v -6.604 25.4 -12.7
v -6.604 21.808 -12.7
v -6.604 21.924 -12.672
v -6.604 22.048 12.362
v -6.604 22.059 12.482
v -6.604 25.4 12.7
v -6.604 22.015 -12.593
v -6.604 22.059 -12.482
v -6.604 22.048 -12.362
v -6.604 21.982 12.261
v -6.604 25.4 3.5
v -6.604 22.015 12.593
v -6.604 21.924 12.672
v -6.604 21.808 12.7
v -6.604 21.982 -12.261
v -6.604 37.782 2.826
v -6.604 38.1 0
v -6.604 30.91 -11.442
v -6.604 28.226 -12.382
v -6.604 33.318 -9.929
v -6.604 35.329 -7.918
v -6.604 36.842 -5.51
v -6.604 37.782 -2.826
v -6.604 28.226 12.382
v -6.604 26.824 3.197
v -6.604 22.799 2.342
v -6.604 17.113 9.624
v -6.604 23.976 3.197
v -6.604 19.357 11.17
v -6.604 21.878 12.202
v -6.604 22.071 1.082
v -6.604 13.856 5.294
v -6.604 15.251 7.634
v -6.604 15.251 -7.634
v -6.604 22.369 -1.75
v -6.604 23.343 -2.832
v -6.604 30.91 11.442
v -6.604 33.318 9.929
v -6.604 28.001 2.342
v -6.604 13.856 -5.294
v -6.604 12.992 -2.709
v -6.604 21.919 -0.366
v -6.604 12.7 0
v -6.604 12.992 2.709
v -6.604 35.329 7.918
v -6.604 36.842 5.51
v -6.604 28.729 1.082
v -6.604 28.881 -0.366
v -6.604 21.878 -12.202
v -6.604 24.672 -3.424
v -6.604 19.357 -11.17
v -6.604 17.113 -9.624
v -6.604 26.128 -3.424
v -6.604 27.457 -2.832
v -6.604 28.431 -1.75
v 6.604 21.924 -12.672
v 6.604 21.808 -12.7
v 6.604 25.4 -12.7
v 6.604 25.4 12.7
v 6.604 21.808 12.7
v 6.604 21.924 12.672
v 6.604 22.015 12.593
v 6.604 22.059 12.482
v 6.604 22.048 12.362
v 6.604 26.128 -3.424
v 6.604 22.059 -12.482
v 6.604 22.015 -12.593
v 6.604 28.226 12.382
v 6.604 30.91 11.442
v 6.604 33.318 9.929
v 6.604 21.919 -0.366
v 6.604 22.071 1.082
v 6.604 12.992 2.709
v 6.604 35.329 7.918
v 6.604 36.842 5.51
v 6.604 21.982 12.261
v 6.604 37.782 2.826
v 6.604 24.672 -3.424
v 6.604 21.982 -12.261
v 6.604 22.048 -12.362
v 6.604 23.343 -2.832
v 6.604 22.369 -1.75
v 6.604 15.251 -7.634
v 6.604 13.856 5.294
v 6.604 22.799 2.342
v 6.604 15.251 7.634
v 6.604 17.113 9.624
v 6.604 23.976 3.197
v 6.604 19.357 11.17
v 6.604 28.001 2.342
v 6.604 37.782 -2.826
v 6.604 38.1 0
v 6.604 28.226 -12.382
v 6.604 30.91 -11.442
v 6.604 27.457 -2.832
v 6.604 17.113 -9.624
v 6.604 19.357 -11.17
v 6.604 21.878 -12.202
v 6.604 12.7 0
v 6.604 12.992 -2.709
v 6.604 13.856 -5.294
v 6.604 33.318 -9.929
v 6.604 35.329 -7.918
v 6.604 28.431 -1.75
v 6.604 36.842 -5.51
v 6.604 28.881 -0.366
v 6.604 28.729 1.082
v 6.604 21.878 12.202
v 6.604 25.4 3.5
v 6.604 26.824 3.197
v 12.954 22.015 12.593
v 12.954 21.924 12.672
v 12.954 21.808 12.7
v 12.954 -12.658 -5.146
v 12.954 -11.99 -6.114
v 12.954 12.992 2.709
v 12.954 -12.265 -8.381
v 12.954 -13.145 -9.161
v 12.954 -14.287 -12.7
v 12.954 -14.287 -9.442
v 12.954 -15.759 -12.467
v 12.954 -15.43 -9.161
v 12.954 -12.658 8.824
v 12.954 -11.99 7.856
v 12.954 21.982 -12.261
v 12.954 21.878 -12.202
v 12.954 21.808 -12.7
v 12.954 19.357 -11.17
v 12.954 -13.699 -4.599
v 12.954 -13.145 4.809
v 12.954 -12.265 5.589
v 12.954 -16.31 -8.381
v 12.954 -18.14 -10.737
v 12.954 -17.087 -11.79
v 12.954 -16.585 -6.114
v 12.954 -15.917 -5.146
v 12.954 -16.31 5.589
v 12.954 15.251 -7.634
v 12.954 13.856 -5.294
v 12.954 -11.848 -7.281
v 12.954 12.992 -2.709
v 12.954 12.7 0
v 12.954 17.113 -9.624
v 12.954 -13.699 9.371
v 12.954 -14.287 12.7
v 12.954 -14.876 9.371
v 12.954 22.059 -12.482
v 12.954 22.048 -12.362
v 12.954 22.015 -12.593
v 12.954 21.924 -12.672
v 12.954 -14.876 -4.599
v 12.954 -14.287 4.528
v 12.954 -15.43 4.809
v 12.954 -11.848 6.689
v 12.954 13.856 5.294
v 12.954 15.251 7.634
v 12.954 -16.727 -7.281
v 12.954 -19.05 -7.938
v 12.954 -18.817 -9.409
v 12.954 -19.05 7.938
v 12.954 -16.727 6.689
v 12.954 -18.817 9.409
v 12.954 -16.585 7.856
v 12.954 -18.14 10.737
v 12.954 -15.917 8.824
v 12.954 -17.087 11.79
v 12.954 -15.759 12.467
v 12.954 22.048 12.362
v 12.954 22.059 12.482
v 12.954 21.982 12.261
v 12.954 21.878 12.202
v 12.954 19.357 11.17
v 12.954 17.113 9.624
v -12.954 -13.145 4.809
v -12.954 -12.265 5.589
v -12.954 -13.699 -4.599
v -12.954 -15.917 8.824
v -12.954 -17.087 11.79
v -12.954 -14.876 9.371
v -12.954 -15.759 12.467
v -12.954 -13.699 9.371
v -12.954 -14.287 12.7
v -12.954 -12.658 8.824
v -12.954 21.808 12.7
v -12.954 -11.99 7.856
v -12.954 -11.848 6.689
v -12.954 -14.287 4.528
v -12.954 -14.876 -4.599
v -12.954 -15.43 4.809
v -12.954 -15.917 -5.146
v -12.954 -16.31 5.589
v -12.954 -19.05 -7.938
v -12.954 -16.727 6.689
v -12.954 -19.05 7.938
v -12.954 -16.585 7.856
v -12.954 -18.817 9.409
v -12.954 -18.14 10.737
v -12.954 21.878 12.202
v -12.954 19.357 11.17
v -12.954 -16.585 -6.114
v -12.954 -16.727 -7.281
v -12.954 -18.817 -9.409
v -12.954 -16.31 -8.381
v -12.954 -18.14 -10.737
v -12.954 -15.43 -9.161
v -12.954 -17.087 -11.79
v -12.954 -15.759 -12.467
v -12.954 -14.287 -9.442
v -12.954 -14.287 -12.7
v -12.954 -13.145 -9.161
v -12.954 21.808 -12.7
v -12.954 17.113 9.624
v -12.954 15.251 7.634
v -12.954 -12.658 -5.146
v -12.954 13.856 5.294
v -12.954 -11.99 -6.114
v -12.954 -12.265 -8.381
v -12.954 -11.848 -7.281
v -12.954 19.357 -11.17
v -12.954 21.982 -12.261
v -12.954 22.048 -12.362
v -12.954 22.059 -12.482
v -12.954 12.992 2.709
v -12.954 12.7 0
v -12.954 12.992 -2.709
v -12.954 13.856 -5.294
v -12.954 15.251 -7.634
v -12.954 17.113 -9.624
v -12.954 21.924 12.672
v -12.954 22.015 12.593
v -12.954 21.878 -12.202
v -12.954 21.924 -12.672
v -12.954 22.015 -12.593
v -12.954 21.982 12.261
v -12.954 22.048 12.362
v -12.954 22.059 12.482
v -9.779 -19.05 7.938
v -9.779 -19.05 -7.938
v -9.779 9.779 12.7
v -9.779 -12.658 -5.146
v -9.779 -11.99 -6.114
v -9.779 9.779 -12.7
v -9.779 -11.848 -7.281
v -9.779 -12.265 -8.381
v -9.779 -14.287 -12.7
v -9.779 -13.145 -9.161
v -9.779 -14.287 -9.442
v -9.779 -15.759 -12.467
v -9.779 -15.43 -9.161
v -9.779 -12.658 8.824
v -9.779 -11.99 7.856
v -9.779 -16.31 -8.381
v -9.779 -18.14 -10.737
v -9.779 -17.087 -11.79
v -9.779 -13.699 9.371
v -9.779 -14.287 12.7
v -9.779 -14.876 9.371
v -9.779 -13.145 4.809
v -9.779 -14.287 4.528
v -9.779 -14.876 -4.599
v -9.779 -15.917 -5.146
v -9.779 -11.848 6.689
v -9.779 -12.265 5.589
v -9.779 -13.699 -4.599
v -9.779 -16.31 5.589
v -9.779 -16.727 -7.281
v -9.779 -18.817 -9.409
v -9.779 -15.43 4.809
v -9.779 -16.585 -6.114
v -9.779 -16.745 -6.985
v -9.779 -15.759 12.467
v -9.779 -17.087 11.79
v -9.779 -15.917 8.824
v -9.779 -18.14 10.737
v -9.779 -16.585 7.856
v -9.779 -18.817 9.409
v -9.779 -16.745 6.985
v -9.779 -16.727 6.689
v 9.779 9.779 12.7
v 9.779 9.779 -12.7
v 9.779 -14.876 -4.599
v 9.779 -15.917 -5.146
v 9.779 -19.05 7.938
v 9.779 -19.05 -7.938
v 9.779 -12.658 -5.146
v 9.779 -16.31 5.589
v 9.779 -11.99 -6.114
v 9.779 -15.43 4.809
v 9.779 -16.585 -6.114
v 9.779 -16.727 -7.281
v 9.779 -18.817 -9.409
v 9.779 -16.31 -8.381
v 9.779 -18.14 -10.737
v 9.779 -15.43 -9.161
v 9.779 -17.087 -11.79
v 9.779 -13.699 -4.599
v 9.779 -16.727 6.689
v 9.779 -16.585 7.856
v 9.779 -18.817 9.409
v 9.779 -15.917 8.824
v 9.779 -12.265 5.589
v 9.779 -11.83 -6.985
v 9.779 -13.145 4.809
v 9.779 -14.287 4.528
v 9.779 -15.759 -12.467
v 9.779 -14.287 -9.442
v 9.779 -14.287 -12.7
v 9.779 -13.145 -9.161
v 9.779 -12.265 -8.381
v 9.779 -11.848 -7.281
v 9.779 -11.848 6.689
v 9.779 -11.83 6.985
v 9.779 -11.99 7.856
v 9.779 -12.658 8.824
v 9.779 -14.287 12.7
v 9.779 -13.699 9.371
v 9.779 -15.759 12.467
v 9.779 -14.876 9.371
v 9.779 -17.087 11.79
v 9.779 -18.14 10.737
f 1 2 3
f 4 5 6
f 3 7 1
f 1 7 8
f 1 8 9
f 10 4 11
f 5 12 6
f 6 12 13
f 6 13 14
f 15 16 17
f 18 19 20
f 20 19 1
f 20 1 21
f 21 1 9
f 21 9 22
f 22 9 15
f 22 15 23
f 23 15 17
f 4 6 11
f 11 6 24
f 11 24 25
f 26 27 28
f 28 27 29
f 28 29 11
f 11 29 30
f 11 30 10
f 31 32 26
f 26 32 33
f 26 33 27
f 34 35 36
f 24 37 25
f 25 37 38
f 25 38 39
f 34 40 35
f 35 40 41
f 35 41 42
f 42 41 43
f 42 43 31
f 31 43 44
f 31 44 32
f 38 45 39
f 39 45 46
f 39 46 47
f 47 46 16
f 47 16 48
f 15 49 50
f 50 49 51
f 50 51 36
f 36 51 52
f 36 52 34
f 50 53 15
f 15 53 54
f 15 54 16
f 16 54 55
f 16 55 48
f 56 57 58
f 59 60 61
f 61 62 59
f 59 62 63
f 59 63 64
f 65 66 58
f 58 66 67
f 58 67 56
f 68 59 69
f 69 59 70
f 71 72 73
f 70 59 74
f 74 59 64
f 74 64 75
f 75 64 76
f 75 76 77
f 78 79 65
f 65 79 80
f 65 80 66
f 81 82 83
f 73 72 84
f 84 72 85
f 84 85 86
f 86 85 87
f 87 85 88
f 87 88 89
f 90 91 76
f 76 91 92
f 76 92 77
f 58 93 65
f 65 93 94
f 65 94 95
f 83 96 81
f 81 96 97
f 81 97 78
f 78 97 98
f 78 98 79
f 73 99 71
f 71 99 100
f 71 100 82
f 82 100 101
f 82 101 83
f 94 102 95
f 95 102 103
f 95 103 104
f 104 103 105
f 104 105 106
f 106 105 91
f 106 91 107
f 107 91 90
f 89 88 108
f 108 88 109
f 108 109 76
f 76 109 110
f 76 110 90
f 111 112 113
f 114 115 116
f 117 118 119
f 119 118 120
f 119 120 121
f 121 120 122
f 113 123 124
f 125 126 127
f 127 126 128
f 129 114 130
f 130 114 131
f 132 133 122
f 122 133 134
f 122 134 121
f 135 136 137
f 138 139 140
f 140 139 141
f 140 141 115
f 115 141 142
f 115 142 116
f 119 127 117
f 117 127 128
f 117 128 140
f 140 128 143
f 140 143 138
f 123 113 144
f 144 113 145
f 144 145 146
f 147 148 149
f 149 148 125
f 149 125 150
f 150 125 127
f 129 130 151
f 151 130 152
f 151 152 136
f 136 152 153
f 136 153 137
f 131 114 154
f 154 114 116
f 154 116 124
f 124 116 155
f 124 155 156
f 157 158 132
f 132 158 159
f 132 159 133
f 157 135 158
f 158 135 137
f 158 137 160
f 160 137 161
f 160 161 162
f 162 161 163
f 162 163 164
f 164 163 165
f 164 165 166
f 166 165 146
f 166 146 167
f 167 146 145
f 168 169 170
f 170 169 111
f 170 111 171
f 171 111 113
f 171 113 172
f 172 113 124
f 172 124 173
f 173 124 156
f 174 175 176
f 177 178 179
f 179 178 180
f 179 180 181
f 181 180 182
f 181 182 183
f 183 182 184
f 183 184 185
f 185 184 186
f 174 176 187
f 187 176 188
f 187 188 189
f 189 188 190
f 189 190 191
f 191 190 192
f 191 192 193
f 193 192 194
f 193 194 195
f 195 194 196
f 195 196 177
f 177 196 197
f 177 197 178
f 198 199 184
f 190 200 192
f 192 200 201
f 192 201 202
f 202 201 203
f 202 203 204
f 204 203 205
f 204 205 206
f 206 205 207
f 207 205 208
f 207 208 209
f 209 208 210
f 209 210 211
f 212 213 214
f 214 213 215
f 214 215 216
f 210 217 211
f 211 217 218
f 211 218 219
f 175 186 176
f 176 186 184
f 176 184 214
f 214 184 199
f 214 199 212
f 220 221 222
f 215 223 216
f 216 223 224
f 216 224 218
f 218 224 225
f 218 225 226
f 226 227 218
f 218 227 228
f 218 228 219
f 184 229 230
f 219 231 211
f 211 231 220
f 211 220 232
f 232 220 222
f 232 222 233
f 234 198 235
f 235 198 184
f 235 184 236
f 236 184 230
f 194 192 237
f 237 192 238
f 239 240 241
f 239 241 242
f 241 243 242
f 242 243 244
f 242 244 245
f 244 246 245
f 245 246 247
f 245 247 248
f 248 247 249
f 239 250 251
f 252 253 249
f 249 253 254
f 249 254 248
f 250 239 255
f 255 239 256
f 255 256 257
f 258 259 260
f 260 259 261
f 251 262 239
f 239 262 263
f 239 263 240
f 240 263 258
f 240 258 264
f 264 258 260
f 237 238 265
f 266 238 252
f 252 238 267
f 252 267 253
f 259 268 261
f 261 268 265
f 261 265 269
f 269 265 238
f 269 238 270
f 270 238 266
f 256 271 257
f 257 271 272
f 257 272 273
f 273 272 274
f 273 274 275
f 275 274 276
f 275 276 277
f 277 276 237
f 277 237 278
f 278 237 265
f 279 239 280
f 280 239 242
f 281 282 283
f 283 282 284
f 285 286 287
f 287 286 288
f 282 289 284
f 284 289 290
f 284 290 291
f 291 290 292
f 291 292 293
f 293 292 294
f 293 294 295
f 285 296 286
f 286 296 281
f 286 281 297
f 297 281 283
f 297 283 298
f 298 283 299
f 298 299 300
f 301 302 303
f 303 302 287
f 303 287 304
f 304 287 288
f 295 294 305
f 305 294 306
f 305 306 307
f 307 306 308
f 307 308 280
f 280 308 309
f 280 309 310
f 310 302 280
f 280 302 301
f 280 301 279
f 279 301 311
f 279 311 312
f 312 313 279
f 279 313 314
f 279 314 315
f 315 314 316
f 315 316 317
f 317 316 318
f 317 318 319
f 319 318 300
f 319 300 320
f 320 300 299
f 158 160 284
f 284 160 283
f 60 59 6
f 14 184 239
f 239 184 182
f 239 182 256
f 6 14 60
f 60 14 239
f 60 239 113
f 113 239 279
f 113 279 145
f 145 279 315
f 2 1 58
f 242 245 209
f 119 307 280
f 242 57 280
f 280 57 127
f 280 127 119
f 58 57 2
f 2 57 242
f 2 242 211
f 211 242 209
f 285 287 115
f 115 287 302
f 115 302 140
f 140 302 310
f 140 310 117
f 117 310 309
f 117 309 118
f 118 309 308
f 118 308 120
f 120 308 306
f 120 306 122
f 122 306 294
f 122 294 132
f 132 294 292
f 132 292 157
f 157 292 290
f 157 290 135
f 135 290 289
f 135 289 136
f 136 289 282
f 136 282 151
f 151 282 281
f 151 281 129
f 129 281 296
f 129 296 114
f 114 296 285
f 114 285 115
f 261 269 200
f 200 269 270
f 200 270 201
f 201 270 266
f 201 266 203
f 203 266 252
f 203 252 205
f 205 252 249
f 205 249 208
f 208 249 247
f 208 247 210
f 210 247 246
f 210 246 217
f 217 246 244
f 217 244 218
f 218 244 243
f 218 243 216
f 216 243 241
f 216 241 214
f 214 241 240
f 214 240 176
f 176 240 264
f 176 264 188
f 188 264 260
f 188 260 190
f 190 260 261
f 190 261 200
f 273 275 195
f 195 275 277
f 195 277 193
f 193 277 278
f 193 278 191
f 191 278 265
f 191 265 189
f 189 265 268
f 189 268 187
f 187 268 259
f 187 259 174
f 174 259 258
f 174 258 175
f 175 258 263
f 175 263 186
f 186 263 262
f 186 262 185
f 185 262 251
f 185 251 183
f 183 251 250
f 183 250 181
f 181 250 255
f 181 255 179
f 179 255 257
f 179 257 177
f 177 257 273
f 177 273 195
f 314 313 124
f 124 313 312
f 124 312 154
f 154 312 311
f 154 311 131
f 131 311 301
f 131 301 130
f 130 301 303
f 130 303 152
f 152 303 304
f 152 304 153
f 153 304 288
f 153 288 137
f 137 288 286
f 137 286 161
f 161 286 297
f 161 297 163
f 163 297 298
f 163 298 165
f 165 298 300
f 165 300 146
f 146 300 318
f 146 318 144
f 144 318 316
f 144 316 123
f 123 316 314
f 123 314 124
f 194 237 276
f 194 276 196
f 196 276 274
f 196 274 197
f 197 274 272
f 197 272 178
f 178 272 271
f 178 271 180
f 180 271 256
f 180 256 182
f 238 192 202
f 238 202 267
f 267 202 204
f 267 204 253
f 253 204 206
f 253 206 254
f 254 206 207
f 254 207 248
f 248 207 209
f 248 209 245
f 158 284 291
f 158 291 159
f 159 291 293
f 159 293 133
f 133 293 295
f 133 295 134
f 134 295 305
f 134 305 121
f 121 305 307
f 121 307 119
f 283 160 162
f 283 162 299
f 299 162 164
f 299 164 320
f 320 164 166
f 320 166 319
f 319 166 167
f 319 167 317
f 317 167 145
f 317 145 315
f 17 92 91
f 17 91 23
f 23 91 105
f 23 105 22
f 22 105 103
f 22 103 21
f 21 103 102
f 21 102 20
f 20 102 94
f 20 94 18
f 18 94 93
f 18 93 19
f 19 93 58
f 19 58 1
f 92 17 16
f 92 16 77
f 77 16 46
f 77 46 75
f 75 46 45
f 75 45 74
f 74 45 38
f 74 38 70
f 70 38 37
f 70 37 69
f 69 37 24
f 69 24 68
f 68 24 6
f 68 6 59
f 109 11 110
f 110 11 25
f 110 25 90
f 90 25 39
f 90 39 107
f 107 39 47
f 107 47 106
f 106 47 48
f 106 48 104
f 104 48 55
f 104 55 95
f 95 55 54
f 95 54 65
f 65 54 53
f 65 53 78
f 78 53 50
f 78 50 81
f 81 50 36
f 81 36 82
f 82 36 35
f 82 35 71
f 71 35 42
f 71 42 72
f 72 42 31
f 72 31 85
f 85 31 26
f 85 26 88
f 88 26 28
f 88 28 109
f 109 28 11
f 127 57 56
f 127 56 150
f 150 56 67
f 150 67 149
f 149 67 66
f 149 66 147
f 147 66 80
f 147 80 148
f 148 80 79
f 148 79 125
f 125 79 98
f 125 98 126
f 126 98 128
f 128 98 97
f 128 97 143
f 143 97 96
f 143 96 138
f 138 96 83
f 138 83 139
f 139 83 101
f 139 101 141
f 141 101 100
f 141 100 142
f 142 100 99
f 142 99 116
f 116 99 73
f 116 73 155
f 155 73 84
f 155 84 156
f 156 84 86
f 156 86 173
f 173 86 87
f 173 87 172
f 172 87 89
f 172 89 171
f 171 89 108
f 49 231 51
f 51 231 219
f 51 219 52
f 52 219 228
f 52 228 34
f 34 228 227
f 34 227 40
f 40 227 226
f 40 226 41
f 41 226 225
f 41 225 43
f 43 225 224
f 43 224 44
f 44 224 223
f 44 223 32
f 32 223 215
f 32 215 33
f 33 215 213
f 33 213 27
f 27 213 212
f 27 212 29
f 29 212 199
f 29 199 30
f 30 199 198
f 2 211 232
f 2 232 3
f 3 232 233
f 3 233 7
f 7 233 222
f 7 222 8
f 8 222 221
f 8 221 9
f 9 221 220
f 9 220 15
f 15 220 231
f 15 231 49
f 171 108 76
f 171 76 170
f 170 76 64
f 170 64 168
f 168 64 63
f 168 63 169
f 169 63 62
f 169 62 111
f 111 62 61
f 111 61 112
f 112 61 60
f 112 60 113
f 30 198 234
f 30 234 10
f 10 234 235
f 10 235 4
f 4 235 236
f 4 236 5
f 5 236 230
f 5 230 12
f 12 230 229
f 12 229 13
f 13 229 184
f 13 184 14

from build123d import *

# Parameters (mm, degrees)
BOSS_EXTRUDE4_DEPTH   = 12.7
F_8_CLEARANCE_HOLE1_D = 4.9149
FILLET2_R             = 4.7625
FILLET3_R             = 12.7
M6_CLEARANCE_HOLE2_D  = 7
BOSS_EXTRUDE5_START   = -19.558
BOSS_EXTRUDE5_DEPTH   = 25.908
CUT_EXTRUDE1_START    = -6.35
CUT_EXTRUDE1_DEPTH    = 6.35
CUT_EXTRUDE2_START    = -25.908
CUT_EXTRUDE2_DEPTH    = 6.35


with BuildPart() as part:
    # Sketch7 → Boss-Extrude4 (new, symmetric)
    with BuildSketch(Plane.XY):
        Polygon((-12.954, -19.05), (-12.954, 12.954), (-6.604, 12.954), (-6.604, 38.1), (6.604, 38.1), (6.604, 12.954), (12.954, 12.954), (12.954, -19.05), (9.779, -19.05), (9.779, 9.779), (-9.779, 9.779), (-9.779, -19.05), align=None)
    extrude(amount=BOSS_EXTRUDE4_DEPTH, both=True)

    # #8 Clearance Hole1 (through all)
    with Locations(Plane(origin=(12.954, 0, 0), x_dir=(0, 0, -1), z_dir=(1, 0, 0))):
        with Locations((-6.985, -14.2875), (6.985, -14.2875)):
            Hole(F_8_CLEARANCE_HOLE1_D / 2)

    # Fillet2
    fillet2_edges = [part.edges().sort_by_distance(p)[0] for p in [
        (11.3665, -19.05, -12.7),
        (-11.3665, -19.05, -12.7),
        (-11.3665, -19.05, 12.7),
        (11.3665, -19.05, 12.7),
    ]]
    fillet(fillet2_edges, radius=FILLET2_R)

    # Fillet3
    fillet3_edges = [part.edges().sort_by_distance(p)[0] for p in [
        (0, 38.1, 12.7),
        (0, 38.1, -12.7),
    ]]
    fillet(fillet3_edges, radius=FILLET3_R - 0.0001)  # a hair under: the kernel refuses the full size

    # M6 Clearance Hole2 (through all)
    with Locations(Plane(origin=(-6.604, 0, 0), x_dir=(0, 0, -1), z_dir=(-1, 0, 0))):
        with Locations((0, -25.4)):
            Hole(M6_CLEARANCE_HOLE2_D / 2)

    # Sketch12 → Boss-Extrude5 (add)
    with BuildSketch(Plane(origin=(6.604, 0, 0), x_dir=(0, 0, -1), z_dir=(1, 0, 0)).offset(BOSS_EXTRUDE5_START)):
        with BuildLine():
            Line((-12.7, 12.954), (-12.7, 21.807897552))
            ThreePointArc((-12.7, 21.807897552), (-12.481567114, 22.059395027), (-12.201960784, 21.878330933))
            ThreePointArc((-12.201960784, 21.878330933), (-8.610950381, 16.065037036), (-2.52726809, 12.954))
            Line((-2.52726809, 12.954), (-12.7, 12.954))
        make_face()
        with BuildLine():
            Line((12.7, 12.954), (12.7, 21.807897552))
            ThreePointArc((12.7, 21.807897552), (12.481567114, 22.059395027), (12.201960784, 21.878330933))
            ThreePointArc((12.201960784, 21.878330933), (8.610950381, 16.065037036), (2.52726809, 12.954))
            Line((2.52726809, 12.954), (12.7, 12.954))
        make_face()
    extrude(amount=BOSS_EXTRUDE5_DEPTH)

    # Sketch13 → Cut-Extrude1 (cut)
    with BuildSketch(Plane(origin=(12.954, 0, 0), x_dir=(0, 0, -1), z_dir=(1, 0, 0)).offset(CUT_EXTRUDE1_START)):
        with BuildLine():
            Line((-2.52726809, 12.954), (2.52726809, 12.954))
            ThreePointArc((2.52726809, 12.954), (0, 12.7), (-2.52726809, 12.954))
        make_face()
    extrude(amount=CUT_EXTRUDE1_DEPTH, mode=Mode.SUBTRACT)

    # Sketch13<2> → Cut-Extrude2 (cut)
    with BuildSketch(Plane(origin=(12.954, 0, 0), x_dir=(0, 0, -1), z_dir=(1, 0, 0)).offset(CUT_EXTRUDE2_START)):
        with BuildLine():
            Line((-2.52726809, 12.954), (2.52726809, 12.954))
            ThreePointArc((2.52726809, 12.954), (0, 12.7), (-2.52726809, 12.954))
        make_face()
    extrude(amount=CUT_EXTRUDE2_DEPTH, mode=Mode.SUBTRACT)


solid = part.part
